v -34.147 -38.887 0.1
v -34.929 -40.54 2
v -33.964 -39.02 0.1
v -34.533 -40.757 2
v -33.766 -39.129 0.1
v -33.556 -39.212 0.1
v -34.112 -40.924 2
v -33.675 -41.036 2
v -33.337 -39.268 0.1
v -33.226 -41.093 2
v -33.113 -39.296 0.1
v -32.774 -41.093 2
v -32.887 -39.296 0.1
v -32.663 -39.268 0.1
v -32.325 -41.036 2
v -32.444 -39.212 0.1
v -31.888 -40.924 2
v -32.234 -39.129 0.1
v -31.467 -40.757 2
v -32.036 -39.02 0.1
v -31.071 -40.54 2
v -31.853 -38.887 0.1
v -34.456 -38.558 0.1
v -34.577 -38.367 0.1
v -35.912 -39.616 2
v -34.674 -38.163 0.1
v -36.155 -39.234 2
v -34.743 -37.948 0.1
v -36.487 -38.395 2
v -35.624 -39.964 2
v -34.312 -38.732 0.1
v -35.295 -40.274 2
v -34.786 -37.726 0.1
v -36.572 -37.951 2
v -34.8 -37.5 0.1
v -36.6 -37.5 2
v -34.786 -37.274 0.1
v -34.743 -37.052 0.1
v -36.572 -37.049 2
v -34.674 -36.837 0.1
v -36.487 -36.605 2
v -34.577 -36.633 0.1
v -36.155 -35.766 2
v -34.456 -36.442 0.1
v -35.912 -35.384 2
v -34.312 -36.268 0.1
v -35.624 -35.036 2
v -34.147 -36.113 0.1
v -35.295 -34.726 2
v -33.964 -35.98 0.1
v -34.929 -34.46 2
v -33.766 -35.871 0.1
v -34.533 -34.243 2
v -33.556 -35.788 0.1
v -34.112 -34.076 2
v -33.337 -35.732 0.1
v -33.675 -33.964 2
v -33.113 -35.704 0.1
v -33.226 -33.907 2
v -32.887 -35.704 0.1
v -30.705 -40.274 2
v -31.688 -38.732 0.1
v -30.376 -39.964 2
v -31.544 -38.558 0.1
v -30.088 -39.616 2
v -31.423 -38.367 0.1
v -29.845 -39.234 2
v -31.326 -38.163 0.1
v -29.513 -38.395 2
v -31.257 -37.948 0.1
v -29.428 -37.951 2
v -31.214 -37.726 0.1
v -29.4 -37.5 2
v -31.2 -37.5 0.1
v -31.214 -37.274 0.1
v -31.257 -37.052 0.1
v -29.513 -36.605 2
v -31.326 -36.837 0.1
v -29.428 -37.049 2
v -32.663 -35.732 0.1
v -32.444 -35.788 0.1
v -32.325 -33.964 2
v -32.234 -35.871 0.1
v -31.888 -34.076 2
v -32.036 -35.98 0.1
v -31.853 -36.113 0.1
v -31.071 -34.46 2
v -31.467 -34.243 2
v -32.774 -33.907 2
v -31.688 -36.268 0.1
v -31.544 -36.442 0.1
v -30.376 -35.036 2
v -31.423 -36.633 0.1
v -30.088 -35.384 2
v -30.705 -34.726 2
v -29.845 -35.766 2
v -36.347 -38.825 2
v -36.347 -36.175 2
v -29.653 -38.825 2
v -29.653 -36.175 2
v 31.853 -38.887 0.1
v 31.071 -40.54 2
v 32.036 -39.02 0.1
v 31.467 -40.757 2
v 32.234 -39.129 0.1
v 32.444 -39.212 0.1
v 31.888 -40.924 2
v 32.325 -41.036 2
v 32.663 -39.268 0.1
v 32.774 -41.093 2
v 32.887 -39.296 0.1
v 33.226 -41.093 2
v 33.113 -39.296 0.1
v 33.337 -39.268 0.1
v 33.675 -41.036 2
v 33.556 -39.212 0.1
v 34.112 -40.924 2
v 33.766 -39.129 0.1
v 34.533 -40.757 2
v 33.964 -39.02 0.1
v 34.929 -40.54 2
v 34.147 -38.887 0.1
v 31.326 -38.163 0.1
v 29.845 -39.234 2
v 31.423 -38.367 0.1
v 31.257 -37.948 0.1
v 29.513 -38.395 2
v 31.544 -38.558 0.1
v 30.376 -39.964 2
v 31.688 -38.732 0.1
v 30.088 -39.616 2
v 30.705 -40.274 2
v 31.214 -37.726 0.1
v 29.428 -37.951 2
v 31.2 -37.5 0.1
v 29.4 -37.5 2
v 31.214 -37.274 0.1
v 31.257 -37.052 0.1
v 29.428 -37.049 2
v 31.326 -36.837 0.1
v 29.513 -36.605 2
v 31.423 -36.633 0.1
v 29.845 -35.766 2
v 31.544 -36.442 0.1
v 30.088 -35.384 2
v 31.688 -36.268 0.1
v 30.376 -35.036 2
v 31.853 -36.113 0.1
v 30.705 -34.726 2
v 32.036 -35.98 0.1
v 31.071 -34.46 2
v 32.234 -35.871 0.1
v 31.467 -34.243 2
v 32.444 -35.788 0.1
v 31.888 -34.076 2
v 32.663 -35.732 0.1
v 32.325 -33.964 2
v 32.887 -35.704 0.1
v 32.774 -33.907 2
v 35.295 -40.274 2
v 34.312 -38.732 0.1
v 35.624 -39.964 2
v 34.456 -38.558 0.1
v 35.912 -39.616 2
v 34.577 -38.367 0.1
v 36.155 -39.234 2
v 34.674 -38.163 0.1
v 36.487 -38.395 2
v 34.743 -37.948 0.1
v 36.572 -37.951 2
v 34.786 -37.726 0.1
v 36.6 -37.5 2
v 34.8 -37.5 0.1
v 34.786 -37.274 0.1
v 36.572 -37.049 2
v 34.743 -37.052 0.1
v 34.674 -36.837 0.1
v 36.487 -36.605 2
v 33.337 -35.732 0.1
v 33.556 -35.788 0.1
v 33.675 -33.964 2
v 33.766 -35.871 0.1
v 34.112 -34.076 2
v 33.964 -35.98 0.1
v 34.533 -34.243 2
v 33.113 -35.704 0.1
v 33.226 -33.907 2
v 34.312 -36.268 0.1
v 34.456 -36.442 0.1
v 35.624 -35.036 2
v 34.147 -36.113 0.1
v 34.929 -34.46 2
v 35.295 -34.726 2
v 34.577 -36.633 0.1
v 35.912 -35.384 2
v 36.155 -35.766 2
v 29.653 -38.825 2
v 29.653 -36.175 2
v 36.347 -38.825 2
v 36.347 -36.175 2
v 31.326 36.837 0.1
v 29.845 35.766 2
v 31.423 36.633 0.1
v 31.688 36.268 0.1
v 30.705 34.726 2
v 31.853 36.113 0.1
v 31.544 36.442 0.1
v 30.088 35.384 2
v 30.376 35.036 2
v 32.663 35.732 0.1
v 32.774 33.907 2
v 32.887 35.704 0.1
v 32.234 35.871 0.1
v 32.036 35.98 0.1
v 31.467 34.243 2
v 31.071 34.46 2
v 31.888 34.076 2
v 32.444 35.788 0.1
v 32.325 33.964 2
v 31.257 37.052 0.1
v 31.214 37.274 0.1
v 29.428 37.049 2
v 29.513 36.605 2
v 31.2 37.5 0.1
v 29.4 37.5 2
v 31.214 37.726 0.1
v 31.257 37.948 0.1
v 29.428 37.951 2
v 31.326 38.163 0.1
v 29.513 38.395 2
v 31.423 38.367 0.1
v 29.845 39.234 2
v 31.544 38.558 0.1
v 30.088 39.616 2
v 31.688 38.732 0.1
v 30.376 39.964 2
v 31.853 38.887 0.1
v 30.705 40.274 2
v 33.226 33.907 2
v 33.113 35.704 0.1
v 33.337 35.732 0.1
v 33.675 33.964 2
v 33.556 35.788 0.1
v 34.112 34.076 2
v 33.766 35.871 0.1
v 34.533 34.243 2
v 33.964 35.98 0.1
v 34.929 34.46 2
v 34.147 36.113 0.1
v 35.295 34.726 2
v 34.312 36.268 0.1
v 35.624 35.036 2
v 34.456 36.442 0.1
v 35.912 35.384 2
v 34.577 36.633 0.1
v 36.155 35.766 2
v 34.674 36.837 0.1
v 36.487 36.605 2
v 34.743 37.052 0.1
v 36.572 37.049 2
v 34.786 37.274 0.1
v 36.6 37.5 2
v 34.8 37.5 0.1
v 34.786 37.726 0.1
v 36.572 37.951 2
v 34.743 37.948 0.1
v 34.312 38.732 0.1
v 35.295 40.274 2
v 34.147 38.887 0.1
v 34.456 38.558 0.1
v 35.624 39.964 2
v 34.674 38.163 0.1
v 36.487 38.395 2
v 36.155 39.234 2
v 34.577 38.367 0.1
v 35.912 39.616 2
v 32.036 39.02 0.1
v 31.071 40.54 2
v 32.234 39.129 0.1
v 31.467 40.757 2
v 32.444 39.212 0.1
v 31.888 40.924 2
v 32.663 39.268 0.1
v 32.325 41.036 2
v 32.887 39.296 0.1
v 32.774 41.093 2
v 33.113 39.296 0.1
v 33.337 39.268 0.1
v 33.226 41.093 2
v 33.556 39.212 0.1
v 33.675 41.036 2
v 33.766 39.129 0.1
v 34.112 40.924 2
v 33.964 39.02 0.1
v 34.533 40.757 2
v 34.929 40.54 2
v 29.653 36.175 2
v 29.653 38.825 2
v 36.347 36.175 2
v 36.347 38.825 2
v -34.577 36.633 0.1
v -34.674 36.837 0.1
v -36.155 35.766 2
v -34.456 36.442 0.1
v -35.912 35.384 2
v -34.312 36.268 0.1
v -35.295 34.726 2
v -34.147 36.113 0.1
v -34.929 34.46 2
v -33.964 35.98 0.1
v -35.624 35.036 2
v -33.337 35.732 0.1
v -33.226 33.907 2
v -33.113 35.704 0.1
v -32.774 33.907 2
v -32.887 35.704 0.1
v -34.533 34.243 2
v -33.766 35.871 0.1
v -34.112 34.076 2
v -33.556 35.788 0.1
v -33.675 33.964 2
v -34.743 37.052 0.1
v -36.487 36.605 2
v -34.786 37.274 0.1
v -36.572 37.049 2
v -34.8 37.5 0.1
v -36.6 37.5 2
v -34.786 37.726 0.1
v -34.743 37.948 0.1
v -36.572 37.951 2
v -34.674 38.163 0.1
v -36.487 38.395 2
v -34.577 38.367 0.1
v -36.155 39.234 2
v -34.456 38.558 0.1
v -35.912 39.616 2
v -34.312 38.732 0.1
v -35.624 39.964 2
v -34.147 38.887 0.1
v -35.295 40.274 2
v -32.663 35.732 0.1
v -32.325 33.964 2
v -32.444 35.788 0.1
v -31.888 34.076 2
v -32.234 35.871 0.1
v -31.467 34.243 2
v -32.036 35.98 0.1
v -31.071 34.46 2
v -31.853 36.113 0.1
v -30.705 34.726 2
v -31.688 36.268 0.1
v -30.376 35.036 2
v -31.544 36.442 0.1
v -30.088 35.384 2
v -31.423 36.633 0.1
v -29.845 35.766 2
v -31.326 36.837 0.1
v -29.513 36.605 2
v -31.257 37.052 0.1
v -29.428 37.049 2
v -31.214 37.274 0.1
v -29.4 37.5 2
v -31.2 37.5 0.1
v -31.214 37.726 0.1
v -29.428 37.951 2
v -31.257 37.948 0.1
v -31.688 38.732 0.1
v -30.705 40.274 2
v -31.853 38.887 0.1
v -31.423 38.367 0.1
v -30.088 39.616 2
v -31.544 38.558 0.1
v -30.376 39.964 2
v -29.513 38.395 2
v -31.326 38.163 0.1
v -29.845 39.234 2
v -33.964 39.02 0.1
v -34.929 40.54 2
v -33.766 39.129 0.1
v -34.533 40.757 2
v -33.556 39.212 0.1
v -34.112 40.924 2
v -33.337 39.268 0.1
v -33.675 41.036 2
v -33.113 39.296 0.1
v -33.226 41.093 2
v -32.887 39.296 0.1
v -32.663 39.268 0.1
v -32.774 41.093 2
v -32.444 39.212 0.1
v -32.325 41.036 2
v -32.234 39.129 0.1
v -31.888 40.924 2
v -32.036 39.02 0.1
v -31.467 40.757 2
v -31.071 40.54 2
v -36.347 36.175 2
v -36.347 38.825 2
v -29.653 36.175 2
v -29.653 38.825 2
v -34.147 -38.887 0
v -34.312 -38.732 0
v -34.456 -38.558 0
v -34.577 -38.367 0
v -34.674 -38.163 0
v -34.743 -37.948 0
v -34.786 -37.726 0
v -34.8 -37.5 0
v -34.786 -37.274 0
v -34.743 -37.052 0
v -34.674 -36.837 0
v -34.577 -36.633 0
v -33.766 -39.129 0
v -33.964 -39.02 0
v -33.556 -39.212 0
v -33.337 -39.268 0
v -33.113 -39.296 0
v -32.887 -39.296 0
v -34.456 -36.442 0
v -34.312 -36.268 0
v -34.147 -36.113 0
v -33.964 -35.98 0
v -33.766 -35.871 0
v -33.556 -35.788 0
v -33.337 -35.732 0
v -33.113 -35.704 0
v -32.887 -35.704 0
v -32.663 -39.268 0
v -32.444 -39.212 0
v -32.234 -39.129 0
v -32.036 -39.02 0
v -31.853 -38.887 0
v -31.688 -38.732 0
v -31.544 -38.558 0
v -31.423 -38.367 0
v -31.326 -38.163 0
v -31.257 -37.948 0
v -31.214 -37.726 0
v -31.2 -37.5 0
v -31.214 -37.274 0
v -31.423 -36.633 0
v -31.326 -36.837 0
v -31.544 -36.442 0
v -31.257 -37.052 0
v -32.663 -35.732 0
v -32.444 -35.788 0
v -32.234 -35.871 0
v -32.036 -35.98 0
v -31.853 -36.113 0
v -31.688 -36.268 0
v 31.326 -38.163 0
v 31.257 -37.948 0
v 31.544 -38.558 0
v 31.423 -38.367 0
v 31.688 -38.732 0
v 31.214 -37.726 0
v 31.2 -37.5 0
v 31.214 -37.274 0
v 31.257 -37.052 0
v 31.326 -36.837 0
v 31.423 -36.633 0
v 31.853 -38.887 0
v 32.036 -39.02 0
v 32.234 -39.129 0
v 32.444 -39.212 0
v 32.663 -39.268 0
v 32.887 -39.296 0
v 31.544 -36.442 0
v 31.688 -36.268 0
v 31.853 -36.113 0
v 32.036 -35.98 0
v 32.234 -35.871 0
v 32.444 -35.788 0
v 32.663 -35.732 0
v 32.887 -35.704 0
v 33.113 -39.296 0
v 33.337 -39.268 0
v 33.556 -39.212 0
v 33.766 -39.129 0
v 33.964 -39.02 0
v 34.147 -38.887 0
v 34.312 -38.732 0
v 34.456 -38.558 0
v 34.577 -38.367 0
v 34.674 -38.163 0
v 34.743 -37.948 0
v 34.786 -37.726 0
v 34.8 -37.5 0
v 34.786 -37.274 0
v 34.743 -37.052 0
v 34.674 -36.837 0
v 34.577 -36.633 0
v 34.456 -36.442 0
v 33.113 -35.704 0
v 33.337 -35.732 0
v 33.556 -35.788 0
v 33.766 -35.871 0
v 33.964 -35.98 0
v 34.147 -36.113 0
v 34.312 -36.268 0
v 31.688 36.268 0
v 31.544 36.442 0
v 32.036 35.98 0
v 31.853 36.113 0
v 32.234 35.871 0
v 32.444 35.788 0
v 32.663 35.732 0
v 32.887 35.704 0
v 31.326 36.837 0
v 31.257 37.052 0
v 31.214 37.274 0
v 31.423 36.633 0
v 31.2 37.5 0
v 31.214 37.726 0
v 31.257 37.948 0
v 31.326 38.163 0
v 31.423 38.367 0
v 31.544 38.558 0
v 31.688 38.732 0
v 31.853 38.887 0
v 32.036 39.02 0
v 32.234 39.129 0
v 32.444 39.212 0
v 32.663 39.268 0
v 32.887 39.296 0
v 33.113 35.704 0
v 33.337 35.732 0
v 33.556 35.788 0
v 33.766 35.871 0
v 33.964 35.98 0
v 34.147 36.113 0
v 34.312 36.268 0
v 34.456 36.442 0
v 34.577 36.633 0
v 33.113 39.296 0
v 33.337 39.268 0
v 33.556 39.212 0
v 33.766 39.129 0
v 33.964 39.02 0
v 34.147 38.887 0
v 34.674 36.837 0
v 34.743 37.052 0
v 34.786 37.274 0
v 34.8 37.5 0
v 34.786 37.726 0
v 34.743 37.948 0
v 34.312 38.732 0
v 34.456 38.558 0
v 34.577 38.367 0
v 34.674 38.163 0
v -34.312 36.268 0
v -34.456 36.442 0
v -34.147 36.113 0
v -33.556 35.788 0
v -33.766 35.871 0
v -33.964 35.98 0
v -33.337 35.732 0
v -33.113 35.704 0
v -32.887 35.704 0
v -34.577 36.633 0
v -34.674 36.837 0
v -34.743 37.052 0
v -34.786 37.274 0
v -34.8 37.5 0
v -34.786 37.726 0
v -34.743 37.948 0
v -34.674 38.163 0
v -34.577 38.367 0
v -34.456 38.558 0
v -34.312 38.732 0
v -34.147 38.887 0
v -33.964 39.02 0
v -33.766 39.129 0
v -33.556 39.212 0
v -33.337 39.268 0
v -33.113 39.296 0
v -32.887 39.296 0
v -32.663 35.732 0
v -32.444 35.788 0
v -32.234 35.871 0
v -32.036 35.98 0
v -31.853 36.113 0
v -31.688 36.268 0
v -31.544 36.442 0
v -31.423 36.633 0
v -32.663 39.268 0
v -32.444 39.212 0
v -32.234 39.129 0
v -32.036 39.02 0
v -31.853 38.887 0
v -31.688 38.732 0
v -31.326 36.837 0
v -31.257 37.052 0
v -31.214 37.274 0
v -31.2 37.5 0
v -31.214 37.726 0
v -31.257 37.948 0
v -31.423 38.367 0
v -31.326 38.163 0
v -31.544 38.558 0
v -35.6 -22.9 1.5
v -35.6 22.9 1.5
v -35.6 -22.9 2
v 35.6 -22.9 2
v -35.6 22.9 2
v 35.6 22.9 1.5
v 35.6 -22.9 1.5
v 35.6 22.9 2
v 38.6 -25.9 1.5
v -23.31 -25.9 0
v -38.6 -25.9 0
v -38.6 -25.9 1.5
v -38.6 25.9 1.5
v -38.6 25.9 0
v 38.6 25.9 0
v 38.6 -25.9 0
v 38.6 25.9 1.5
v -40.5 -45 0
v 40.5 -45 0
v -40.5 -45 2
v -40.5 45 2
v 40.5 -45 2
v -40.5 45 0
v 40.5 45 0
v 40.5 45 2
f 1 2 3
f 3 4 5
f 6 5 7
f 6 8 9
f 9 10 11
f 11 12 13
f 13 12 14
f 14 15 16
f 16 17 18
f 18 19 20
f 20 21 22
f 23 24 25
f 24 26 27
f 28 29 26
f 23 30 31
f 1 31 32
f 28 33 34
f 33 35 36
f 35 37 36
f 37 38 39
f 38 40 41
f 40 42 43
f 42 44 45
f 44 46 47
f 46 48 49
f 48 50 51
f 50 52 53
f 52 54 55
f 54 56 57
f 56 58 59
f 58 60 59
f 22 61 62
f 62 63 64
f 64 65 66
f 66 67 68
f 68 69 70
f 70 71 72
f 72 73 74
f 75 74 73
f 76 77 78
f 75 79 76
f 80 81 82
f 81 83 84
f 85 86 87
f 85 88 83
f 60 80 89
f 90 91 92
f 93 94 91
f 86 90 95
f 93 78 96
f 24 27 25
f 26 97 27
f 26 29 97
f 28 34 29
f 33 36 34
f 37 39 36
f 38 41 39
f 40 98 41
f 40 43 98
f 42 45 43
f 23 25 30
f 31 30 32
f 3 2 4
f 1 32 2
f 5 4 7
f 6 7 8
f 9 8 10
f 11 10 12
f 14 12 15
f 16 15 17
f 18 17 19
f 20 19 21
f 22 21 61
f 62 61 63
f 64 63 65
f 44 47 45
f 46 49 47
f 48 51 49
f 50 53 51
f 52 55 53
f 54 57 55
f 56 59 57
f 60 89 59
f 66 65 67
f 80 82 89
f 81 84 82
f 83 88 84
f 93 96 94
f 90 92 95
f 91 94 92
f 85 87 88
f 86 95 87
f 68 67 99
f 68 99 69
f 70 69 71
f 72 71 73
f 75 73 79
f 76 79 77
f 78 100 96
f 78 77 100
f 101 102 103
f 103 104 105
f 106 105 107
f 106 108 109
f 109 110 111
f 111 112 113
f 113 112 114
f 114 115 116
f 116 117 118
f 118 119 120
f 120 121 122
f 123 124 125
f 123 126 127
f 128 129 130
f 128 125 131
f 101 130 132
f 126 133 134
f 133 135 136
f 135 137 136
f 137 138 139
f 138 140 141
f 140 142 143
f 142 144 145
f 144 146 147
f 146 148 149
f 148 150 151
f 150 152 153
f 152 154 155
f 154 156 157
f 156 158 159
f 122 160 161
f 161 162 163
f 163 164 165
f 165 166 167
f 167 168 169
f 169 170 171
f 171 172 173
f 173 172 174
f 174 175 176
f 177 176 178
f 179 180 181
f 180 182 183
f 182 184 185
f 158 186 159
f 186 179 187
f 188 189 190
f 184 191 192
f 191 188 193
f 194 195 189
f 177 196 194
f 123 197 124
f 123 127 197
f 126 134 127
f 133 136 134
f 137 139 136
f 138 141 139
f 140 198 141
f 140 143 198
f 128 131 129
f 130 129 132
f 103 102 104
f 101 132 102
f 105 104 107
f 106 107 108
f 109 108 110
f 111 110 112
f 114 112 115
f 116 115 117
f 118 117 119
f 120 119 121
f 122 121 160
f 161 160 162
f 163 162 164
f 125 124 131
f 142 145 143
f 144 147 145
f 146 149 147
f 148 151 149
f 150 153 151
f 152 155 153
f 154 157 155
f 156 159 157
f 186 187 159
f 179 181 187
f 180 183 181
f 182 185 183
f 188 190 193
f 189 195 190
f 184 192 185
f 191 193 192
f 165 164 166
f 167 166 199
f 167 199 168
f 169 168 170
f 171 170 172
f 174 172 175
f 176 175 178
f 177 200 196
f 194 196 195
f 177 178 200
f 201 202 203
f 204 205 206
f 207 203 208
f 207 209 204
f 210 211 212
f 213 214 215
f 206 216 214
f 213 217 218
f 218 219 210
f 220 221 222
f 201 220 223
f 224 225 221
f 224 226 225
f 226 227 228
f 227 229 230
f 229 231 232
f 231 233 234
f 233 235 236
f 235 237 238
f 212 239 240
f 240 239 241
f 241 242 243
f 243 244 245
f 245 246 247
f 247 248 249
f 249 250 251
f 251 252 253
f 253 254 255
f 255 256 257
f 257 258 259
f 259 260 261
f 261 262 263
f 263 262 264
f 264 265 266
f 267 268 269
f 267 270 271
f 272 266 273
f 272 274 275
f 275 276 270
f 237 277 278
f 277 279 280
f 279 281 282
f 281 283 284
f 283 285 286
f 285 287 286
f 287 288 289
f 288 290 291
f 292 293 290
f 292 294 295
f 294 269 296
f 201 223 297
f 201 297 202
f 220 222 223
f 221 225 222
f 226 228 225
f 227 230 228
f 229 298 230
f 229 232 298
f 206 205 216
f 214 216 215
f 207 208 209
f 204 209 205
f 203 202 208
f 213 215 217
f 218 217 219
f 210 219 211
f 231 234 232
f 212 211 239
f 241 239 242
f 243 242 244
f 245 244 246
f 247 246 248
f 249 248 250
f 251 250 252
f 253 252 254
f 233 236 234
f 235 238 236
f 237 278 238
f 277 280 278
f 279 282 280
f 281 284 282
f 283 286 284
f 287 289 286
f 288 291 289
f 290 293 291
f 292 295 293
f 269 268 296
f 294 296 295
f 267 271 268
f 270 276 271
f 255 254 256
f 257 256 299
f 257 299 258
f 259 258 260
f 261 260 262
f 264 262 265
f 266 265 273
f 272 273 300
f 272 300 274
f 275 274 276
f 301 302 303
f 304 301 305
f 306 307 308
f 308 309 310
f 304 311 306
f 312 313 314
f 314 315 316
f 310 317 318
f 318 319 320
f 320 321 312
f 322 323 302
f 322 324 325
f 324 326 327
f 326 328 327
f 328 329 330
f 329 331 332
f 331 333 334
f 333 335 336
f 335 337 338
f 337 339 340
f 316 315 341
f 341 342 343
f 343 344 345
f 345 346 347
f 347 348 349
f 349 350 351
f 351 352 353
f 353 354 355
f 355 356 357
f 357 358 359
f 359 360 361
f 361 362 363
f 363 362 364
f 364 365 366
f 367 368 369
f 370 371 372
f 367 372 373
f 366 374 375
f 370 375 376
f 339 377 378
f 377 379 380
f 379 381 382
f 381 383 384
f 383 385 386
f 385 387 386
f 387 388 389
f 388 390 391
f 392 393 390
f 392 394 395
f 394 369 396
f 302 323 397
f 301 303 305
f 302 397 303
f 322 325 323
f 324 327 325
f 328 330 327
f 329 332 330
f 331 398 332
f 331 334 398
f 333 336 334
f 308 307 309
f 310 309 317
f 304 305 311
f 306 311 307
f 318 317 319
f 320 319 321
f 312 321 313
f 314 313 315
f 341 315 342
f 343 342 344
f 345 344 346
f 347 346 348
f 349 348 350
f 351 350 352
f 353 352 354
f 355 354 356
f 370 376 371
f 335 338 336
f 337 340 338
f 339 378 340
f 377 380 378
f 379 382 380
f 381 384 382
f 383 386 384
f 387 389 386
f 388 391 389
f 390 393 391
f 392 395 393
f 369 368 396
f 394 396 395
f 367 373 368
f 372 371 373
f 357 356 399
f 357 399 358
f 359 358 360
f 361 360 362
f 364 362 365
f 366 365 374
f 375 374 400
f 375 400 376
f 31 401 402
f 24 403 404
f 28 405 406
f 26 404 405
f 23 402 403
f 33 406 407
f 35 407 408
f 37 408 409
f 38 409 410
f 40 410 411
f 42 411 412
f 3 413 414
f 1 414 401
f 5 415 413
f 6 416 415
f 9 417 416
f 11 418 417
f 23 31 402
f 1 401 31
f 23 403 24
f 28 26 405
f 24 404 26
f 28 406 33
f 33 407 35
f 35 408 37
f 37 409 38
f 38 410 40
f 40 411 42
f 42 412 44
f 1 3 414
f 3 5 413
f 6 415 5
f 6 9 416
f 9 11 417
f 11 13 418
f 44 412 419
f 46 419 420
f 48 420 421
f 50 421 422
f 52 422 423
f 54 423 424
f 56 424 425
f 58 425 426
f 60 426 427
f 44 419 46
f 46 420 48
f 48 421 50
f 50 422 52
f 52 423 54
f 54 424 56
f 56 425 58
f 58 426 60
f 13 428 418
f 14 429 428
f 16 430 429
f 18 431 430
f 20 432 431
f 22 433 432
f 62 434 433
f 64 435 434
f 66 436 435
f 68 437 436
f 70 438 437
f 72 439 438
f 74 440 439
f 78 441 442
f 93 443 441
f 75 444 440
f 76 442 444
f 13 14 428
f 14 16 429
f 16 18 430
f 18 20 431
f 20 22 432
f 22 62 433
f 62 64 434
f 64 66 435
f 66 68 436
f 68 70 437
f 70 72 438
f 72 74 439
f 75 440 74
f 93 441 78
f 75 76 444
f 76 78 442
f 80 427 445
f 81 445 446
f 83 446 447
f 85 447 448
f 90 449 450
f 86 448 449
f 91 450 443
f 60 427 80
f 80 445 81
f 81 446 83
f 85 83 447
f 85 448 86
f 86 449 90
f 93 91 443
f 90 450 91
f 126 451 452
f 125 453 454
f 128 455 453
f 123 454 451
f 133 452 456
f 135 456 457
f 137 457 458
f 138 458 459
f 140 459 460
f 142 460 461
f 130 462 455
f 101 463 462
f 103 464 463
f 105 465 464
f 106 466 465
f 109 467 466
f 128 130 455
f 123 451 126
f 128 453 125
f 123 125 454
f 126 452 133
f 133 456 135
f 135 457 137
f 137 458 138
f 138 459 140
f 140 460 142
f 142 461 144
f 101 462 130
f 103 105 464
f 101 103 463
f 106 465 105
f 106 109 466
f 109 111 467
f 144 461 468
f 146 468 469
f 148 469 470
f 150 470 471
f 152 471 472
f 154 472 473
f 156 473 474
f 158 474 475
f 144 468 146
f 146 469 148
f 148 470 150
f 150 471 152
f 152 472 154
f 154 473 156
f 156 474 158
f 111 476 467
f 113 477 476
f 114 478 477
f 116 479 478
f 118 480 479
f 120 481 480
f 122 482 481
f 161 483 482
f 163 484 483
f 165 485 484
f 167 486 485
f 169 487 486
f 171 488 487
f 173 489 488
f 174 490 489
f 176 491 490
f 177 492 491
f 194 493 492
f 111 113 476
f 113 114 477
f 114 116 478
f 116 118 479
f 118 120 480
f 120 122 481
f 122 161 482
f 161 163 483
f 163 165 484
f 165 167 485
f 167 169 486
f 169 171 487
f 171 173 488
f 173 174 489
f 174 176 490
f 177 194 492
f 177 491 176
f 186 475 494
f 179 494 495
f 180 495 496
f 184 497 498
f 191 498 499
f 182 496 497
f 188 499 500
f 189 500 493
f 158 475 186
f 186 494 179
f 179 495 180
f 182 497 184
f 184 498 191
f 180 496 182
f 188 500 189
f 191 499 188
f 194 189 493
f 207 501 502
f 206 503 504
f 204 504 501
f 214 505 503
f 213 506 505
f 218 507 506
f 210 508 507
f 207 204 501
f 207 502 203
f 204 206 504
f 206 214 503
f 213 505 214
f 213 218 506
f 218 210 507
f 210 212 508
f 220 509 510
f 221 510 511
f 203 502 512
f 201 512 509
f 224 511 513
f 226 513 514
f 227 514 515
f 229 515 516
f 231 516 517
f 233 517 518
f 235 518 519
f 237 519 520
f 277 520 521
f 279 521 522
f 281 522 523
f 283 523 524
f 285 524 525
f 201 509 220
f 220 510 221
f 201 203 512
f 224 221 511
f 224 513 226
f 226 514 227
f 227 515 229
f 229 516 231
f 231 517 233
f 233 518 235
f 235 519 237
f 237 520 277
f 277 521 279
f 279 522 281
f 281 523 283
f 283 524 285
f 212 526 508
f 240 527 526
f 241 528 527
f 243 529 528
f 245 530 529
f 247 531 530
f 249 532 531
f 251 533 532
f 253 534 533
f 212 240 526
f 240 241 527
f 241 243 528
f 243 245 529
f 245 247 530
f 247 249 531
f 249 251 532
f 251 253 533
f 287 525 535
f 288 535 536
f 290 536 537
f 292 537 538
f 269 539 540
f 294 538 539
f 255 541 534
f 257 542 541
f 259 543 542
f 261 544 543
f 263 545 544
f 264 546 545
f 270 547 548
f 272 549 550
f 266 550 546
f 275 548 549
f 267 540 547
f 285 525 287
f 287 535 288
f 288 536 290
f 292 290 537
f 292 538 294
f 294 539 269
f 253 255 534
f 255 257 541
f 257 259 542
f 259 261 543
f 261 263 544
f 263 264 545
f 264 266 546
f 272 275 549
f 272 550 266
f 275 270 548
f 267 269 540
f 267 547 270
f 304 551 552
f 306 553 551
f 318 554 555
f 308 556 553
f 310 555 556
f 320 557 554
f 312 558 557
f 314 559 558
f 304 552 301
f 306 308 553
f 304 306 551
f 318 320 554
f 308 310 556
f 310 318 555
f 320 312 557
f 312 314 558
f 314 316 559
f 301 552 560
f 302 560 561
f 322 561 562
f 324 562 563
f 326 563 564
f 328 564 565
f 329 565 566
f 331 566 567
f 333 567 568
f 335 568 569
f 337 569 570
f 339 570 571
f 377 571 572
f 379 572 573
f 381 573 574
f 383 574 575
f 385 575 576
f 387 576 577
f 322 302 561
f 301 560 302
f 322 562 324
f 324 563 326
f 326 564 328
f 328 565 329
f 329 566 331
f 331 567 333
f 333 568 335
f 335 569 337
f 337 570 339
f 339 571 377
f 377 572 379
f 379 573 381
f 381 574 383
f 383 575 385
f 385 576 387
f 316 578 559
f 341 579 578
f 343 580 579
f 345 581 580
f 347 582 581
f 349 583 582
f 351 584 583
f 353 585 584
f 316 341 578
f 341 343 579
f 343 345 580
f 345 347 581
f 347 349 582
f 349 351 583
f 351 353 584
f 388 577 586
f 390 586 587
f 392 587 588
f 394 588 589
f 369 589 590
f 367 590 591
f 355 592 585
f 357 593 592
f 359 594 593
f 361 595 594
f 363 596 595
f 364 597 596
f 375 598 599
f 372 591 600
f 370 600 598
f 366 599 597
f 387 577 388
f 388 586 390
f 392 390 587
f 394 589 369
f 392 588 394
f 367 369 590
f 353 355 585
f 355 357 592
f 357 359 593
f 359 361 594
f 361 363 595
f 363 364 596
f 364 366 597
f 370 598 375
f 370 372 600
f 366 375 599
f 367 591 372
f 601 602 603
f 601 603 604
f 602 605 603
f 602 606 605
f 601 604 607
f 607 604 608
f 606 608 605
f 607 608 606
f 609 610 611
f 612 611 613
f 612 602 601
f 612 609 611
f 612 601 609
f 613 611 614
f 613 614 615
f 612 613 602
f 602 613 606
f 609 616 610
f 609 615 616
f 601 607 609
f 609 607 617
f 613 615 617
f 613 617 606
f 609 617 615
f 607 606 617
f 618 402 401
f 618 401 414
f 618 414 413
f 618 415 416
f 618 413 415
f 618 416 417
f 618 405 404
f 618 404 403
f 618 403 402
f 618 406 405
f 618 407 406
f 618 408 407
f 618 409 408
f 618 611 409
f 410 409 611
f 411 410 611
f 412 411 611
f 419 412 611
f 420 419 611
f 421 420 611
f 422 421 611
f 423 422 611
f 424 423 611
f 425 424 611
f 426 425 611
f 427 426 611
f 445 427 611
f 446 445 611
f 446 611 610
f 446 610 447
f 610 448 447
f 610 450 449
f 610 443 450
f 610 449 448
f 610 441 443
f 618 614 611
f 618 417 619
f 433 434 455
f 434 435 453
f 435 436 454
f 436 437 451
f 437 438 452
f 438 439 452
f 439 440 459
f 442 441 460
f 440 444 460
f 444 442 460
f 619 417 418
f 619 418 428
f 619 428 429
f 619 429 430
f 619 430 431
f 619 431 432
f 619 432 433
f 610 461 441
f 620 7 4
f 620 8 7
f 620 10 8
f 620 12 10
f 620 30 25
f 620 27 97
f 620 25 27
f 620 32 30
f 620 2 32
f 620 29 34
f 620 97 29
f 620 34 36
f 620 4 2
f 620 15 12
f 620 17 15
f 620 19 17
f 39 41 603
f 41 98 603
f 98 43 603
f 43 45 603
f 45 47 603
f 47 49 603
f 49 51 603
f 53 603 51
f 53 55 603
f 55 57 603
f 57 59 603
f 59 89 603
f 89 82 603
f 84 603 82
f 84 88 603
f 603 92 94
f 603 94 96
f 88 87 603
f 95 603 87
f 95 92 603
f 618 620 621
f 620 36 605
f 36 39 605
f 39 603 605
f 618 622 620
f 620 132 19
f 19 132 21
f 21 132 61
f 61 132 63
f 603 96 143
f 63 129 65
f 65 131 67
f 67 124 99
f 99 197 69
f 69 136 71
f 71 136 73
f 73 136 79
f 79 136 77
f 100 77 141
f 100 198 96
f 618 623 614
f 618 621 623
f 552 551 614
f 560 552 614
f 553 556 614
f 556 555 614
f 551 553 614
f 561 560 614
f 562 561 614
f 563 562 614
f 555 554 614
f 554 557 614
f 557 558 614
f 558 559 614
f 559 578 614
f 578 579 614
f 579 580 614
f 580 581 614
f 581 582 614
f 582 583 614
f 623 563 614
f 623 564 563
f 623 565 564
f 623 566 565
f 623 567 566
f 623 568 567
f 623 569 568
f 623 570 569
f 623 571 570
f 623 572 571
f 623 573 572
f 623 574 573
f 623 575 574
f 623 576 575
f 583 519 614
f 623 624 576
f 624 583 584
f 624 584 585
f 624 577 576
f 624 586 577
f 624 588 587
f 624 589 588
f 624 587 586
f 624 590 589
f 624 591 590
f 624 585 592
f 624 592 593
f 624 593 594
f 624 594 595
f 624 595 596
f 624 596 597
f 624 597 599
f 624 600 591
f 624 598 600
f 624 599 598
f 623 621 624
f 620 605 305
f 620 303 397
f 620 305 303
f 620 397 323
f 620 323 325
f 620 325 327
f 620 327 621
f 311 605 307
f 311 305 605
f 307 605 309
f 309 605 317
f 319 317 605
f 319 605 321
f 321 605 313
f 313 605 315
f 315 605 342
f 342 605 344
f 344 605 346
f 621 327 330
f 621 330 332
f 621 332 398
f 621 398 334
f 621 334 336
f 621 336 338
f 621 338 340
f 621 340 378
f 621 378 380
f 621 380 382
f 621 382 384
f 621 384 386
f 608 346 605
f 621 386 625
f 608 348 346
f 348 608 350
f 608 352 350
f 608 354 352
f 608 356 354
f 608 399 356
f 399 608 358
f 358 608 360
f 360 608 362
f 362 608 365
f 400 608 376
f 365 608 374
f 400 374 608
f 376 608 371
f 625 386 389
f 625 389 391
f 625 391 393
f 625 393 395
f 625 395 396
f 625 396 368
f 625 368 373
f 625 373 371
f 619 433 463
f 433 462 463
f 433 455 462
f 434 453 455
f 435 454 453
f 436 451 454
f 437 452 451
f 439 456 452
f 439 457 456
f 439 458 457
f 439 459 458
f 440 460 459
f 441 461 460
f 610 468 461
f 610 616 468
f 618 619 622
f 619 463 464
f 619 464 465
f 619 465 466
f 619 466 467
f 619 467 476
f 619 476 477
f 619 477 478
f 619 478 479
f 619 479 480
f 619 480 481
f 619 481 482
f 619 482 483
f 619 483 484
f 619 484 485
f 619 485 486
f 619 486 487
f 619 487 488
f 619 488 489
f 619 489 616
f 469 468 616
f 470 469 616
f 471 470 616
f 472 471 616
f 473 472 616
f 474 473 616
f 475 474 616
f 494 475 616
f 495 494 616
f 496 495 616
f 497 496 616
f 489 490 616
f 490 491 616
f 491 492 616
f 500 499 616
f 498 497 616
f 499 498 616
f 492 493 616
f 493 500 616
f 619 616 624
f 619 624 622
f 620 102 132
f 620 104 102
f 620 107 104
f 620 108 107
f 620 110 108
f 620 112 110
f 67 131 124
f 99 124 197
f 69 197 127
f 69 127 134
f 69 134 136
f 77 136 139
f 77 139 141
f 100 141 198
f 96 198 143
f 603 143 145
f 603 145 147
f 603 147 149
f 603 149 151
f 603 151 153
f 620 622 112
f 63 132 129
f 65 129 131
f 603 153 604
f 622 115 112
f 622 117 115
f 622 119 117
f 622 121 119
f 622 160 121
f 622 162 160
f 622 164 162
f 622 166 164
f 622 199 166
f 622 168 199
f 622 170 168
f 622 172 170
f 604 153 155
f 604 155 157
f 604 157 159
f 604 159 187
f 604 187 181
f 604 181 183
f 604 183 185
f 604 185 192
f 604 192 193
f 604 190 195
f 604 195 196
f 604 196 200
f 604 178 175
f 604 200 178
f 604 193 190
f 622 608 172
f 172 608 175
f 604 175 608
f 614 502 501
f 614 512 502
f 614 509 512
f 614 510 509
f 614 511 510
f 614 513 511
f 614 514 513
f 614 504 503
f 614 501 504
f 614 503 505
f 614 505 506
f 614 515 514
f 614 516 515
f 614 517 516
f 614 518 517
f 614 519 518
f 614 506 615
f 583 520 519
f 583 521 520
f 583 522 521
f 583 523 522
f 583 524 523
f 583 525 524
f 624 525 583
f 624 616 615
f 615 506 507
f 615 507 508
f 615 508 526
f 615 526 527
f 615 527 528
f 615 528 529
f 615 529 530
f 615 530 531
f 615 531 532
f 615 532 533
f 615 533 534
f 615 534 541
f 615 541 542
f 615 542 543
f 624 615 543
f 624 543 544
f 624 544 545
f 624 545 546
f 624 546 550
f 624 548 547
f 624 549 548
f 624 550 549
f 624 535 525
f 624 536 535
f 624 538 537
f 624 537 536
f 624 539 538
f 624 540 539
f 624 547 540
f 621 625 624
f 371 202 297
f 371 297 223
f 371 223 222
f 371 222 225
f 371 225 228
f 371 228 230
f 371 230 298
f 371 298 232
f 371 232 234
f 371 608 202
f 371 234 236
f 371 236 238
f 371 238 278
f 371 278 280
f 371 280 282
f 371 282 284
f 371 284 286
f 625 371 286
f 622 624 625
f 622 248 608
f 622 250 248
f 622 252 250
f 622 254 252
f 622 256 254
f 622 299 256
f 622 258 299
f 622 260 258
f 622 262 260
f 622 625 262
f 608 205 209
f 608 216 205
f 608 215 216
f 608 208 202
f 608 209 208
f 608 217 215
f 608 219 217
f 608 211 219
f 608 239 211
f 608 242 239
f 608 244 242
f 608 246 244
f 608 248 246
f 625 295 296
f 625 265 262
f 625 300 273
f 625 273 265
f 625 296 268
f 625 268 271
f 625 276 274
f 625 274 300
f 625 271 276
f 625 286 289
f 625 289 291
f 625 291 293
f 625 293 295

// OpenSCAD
$fn = 50;


difference() {
	union() {
		translate(v = [-40.5000000000, -45.0000000000, 0]) {
			cube(size = [81, 90, 2]);
		}
	}
	union() {
		translate(v = [33.0000000000, 37.5000000000, 2]) {
			rotate(a = [0, 0, 0]) {
				difference() {
					union() {
						#translate(v = [0, 0, -20.0000000000]) {
							cylinder(h = 20, r = 1.5000000000);
						}
						#translate(v = [0, 0, -1.9000000000]) {
							cylinder(h = 1.9000000000, r1 = 1.8000000000, r2 = 3.6000000000);
						}
						#translate(v = [0, 0, -20.0000000000]) {
							cylinder(h = 20, r = 1.8000000000);
						}
						#translate(v = [0, 0, -20.0000000000]) {
							cylinder(h = 20, r = 1.5000000000);
						}
					}
					union();
				}
			}
		}
		translate(v = [-33.0000000000, 37.5000000000, 2]) {
			rotate(a = [0, 0, 0]) {
				difference() {
					union() {
						#translate(v = [0, 0, -20.0000000000]) {
							cylinder(h = 20, r = 1.5000000000);
						}
						#translate(v = [0, 0, -1.9000000000]) {
							cylinder(h = 1.9000000000, r1 = 1.8000000000, r2 = 3.6000000000);
						}
						#translate(v = [0, 0, -20.0000000000]) {
							cylinder(h = 20, r = 1.8000000000);
						}
						#translate(v = [0, 0, -20.0000000000]) {
							cylinder(h = 20, r = 1.5000000000);
						}
					}
					union();
				}
			}
		}
		translate(v = [33.0000000000, -37.5000000000, 2]) {
			rotate(a = [0, 0, 0]) {
				difference() {
					union() {
						#translate(v = [0, 0, -20.0000000000]) {
							cylinder(h = 20, r = 1.5000000000);
						}
						#translate(v = [0, 0, -1.9000000000]) {
							cylinder(h = 1.9000000000, r1 = 1.8000000000, r2 = 3.6000000000);
						}
						#translate(v = [0, 0, -20.0000000000]) {
							cylinder(h = 20, r = 1.8000000000);
						}
						#translate(v = [0, 0, -20.0000000000]) {
							cylinder(h = 20, r = 1.5000000000);
						}
					}
					union();
				}
			}
		}
		translate(v = [-33.0000000000, -37.5000000000, 2]) {
			rotate(a = [0, 0, 0]) {
				difference() {
					union() {
						#translate(v = [0, 0, -20.0000000000]) {
							cylinder(h = 20, r = 1.5000000000);
						}
						#translate(v = [0, 0, -1.9000000000]) {
							cylinder(h = 1.9000000000, r1 = 1.8000000000, r2 = 3.6000000000);
						}
						#translate(v = [0, 0, -20.0000000000]) {
							cylinder(h = 20, r = 1.8000000000);
						}
						#translate(v = [0, 0, -20.0000000000]) {
							cylinder(h = 20, r = 1.5000000000);
						}
					}
					union();
				}
			}
		}
		translate(v = [-35.6000000000, -22.9000000000, 0]) {
			cube(size = [71.2000000000, 45.8000000000, 2]);
		}
		translate(v = [-38.6000000000, -25.9000000000, 0]) {
			cube(size = [77.2000000000, 51.8000000000, 1.5000000000]);
		}
	}
}
